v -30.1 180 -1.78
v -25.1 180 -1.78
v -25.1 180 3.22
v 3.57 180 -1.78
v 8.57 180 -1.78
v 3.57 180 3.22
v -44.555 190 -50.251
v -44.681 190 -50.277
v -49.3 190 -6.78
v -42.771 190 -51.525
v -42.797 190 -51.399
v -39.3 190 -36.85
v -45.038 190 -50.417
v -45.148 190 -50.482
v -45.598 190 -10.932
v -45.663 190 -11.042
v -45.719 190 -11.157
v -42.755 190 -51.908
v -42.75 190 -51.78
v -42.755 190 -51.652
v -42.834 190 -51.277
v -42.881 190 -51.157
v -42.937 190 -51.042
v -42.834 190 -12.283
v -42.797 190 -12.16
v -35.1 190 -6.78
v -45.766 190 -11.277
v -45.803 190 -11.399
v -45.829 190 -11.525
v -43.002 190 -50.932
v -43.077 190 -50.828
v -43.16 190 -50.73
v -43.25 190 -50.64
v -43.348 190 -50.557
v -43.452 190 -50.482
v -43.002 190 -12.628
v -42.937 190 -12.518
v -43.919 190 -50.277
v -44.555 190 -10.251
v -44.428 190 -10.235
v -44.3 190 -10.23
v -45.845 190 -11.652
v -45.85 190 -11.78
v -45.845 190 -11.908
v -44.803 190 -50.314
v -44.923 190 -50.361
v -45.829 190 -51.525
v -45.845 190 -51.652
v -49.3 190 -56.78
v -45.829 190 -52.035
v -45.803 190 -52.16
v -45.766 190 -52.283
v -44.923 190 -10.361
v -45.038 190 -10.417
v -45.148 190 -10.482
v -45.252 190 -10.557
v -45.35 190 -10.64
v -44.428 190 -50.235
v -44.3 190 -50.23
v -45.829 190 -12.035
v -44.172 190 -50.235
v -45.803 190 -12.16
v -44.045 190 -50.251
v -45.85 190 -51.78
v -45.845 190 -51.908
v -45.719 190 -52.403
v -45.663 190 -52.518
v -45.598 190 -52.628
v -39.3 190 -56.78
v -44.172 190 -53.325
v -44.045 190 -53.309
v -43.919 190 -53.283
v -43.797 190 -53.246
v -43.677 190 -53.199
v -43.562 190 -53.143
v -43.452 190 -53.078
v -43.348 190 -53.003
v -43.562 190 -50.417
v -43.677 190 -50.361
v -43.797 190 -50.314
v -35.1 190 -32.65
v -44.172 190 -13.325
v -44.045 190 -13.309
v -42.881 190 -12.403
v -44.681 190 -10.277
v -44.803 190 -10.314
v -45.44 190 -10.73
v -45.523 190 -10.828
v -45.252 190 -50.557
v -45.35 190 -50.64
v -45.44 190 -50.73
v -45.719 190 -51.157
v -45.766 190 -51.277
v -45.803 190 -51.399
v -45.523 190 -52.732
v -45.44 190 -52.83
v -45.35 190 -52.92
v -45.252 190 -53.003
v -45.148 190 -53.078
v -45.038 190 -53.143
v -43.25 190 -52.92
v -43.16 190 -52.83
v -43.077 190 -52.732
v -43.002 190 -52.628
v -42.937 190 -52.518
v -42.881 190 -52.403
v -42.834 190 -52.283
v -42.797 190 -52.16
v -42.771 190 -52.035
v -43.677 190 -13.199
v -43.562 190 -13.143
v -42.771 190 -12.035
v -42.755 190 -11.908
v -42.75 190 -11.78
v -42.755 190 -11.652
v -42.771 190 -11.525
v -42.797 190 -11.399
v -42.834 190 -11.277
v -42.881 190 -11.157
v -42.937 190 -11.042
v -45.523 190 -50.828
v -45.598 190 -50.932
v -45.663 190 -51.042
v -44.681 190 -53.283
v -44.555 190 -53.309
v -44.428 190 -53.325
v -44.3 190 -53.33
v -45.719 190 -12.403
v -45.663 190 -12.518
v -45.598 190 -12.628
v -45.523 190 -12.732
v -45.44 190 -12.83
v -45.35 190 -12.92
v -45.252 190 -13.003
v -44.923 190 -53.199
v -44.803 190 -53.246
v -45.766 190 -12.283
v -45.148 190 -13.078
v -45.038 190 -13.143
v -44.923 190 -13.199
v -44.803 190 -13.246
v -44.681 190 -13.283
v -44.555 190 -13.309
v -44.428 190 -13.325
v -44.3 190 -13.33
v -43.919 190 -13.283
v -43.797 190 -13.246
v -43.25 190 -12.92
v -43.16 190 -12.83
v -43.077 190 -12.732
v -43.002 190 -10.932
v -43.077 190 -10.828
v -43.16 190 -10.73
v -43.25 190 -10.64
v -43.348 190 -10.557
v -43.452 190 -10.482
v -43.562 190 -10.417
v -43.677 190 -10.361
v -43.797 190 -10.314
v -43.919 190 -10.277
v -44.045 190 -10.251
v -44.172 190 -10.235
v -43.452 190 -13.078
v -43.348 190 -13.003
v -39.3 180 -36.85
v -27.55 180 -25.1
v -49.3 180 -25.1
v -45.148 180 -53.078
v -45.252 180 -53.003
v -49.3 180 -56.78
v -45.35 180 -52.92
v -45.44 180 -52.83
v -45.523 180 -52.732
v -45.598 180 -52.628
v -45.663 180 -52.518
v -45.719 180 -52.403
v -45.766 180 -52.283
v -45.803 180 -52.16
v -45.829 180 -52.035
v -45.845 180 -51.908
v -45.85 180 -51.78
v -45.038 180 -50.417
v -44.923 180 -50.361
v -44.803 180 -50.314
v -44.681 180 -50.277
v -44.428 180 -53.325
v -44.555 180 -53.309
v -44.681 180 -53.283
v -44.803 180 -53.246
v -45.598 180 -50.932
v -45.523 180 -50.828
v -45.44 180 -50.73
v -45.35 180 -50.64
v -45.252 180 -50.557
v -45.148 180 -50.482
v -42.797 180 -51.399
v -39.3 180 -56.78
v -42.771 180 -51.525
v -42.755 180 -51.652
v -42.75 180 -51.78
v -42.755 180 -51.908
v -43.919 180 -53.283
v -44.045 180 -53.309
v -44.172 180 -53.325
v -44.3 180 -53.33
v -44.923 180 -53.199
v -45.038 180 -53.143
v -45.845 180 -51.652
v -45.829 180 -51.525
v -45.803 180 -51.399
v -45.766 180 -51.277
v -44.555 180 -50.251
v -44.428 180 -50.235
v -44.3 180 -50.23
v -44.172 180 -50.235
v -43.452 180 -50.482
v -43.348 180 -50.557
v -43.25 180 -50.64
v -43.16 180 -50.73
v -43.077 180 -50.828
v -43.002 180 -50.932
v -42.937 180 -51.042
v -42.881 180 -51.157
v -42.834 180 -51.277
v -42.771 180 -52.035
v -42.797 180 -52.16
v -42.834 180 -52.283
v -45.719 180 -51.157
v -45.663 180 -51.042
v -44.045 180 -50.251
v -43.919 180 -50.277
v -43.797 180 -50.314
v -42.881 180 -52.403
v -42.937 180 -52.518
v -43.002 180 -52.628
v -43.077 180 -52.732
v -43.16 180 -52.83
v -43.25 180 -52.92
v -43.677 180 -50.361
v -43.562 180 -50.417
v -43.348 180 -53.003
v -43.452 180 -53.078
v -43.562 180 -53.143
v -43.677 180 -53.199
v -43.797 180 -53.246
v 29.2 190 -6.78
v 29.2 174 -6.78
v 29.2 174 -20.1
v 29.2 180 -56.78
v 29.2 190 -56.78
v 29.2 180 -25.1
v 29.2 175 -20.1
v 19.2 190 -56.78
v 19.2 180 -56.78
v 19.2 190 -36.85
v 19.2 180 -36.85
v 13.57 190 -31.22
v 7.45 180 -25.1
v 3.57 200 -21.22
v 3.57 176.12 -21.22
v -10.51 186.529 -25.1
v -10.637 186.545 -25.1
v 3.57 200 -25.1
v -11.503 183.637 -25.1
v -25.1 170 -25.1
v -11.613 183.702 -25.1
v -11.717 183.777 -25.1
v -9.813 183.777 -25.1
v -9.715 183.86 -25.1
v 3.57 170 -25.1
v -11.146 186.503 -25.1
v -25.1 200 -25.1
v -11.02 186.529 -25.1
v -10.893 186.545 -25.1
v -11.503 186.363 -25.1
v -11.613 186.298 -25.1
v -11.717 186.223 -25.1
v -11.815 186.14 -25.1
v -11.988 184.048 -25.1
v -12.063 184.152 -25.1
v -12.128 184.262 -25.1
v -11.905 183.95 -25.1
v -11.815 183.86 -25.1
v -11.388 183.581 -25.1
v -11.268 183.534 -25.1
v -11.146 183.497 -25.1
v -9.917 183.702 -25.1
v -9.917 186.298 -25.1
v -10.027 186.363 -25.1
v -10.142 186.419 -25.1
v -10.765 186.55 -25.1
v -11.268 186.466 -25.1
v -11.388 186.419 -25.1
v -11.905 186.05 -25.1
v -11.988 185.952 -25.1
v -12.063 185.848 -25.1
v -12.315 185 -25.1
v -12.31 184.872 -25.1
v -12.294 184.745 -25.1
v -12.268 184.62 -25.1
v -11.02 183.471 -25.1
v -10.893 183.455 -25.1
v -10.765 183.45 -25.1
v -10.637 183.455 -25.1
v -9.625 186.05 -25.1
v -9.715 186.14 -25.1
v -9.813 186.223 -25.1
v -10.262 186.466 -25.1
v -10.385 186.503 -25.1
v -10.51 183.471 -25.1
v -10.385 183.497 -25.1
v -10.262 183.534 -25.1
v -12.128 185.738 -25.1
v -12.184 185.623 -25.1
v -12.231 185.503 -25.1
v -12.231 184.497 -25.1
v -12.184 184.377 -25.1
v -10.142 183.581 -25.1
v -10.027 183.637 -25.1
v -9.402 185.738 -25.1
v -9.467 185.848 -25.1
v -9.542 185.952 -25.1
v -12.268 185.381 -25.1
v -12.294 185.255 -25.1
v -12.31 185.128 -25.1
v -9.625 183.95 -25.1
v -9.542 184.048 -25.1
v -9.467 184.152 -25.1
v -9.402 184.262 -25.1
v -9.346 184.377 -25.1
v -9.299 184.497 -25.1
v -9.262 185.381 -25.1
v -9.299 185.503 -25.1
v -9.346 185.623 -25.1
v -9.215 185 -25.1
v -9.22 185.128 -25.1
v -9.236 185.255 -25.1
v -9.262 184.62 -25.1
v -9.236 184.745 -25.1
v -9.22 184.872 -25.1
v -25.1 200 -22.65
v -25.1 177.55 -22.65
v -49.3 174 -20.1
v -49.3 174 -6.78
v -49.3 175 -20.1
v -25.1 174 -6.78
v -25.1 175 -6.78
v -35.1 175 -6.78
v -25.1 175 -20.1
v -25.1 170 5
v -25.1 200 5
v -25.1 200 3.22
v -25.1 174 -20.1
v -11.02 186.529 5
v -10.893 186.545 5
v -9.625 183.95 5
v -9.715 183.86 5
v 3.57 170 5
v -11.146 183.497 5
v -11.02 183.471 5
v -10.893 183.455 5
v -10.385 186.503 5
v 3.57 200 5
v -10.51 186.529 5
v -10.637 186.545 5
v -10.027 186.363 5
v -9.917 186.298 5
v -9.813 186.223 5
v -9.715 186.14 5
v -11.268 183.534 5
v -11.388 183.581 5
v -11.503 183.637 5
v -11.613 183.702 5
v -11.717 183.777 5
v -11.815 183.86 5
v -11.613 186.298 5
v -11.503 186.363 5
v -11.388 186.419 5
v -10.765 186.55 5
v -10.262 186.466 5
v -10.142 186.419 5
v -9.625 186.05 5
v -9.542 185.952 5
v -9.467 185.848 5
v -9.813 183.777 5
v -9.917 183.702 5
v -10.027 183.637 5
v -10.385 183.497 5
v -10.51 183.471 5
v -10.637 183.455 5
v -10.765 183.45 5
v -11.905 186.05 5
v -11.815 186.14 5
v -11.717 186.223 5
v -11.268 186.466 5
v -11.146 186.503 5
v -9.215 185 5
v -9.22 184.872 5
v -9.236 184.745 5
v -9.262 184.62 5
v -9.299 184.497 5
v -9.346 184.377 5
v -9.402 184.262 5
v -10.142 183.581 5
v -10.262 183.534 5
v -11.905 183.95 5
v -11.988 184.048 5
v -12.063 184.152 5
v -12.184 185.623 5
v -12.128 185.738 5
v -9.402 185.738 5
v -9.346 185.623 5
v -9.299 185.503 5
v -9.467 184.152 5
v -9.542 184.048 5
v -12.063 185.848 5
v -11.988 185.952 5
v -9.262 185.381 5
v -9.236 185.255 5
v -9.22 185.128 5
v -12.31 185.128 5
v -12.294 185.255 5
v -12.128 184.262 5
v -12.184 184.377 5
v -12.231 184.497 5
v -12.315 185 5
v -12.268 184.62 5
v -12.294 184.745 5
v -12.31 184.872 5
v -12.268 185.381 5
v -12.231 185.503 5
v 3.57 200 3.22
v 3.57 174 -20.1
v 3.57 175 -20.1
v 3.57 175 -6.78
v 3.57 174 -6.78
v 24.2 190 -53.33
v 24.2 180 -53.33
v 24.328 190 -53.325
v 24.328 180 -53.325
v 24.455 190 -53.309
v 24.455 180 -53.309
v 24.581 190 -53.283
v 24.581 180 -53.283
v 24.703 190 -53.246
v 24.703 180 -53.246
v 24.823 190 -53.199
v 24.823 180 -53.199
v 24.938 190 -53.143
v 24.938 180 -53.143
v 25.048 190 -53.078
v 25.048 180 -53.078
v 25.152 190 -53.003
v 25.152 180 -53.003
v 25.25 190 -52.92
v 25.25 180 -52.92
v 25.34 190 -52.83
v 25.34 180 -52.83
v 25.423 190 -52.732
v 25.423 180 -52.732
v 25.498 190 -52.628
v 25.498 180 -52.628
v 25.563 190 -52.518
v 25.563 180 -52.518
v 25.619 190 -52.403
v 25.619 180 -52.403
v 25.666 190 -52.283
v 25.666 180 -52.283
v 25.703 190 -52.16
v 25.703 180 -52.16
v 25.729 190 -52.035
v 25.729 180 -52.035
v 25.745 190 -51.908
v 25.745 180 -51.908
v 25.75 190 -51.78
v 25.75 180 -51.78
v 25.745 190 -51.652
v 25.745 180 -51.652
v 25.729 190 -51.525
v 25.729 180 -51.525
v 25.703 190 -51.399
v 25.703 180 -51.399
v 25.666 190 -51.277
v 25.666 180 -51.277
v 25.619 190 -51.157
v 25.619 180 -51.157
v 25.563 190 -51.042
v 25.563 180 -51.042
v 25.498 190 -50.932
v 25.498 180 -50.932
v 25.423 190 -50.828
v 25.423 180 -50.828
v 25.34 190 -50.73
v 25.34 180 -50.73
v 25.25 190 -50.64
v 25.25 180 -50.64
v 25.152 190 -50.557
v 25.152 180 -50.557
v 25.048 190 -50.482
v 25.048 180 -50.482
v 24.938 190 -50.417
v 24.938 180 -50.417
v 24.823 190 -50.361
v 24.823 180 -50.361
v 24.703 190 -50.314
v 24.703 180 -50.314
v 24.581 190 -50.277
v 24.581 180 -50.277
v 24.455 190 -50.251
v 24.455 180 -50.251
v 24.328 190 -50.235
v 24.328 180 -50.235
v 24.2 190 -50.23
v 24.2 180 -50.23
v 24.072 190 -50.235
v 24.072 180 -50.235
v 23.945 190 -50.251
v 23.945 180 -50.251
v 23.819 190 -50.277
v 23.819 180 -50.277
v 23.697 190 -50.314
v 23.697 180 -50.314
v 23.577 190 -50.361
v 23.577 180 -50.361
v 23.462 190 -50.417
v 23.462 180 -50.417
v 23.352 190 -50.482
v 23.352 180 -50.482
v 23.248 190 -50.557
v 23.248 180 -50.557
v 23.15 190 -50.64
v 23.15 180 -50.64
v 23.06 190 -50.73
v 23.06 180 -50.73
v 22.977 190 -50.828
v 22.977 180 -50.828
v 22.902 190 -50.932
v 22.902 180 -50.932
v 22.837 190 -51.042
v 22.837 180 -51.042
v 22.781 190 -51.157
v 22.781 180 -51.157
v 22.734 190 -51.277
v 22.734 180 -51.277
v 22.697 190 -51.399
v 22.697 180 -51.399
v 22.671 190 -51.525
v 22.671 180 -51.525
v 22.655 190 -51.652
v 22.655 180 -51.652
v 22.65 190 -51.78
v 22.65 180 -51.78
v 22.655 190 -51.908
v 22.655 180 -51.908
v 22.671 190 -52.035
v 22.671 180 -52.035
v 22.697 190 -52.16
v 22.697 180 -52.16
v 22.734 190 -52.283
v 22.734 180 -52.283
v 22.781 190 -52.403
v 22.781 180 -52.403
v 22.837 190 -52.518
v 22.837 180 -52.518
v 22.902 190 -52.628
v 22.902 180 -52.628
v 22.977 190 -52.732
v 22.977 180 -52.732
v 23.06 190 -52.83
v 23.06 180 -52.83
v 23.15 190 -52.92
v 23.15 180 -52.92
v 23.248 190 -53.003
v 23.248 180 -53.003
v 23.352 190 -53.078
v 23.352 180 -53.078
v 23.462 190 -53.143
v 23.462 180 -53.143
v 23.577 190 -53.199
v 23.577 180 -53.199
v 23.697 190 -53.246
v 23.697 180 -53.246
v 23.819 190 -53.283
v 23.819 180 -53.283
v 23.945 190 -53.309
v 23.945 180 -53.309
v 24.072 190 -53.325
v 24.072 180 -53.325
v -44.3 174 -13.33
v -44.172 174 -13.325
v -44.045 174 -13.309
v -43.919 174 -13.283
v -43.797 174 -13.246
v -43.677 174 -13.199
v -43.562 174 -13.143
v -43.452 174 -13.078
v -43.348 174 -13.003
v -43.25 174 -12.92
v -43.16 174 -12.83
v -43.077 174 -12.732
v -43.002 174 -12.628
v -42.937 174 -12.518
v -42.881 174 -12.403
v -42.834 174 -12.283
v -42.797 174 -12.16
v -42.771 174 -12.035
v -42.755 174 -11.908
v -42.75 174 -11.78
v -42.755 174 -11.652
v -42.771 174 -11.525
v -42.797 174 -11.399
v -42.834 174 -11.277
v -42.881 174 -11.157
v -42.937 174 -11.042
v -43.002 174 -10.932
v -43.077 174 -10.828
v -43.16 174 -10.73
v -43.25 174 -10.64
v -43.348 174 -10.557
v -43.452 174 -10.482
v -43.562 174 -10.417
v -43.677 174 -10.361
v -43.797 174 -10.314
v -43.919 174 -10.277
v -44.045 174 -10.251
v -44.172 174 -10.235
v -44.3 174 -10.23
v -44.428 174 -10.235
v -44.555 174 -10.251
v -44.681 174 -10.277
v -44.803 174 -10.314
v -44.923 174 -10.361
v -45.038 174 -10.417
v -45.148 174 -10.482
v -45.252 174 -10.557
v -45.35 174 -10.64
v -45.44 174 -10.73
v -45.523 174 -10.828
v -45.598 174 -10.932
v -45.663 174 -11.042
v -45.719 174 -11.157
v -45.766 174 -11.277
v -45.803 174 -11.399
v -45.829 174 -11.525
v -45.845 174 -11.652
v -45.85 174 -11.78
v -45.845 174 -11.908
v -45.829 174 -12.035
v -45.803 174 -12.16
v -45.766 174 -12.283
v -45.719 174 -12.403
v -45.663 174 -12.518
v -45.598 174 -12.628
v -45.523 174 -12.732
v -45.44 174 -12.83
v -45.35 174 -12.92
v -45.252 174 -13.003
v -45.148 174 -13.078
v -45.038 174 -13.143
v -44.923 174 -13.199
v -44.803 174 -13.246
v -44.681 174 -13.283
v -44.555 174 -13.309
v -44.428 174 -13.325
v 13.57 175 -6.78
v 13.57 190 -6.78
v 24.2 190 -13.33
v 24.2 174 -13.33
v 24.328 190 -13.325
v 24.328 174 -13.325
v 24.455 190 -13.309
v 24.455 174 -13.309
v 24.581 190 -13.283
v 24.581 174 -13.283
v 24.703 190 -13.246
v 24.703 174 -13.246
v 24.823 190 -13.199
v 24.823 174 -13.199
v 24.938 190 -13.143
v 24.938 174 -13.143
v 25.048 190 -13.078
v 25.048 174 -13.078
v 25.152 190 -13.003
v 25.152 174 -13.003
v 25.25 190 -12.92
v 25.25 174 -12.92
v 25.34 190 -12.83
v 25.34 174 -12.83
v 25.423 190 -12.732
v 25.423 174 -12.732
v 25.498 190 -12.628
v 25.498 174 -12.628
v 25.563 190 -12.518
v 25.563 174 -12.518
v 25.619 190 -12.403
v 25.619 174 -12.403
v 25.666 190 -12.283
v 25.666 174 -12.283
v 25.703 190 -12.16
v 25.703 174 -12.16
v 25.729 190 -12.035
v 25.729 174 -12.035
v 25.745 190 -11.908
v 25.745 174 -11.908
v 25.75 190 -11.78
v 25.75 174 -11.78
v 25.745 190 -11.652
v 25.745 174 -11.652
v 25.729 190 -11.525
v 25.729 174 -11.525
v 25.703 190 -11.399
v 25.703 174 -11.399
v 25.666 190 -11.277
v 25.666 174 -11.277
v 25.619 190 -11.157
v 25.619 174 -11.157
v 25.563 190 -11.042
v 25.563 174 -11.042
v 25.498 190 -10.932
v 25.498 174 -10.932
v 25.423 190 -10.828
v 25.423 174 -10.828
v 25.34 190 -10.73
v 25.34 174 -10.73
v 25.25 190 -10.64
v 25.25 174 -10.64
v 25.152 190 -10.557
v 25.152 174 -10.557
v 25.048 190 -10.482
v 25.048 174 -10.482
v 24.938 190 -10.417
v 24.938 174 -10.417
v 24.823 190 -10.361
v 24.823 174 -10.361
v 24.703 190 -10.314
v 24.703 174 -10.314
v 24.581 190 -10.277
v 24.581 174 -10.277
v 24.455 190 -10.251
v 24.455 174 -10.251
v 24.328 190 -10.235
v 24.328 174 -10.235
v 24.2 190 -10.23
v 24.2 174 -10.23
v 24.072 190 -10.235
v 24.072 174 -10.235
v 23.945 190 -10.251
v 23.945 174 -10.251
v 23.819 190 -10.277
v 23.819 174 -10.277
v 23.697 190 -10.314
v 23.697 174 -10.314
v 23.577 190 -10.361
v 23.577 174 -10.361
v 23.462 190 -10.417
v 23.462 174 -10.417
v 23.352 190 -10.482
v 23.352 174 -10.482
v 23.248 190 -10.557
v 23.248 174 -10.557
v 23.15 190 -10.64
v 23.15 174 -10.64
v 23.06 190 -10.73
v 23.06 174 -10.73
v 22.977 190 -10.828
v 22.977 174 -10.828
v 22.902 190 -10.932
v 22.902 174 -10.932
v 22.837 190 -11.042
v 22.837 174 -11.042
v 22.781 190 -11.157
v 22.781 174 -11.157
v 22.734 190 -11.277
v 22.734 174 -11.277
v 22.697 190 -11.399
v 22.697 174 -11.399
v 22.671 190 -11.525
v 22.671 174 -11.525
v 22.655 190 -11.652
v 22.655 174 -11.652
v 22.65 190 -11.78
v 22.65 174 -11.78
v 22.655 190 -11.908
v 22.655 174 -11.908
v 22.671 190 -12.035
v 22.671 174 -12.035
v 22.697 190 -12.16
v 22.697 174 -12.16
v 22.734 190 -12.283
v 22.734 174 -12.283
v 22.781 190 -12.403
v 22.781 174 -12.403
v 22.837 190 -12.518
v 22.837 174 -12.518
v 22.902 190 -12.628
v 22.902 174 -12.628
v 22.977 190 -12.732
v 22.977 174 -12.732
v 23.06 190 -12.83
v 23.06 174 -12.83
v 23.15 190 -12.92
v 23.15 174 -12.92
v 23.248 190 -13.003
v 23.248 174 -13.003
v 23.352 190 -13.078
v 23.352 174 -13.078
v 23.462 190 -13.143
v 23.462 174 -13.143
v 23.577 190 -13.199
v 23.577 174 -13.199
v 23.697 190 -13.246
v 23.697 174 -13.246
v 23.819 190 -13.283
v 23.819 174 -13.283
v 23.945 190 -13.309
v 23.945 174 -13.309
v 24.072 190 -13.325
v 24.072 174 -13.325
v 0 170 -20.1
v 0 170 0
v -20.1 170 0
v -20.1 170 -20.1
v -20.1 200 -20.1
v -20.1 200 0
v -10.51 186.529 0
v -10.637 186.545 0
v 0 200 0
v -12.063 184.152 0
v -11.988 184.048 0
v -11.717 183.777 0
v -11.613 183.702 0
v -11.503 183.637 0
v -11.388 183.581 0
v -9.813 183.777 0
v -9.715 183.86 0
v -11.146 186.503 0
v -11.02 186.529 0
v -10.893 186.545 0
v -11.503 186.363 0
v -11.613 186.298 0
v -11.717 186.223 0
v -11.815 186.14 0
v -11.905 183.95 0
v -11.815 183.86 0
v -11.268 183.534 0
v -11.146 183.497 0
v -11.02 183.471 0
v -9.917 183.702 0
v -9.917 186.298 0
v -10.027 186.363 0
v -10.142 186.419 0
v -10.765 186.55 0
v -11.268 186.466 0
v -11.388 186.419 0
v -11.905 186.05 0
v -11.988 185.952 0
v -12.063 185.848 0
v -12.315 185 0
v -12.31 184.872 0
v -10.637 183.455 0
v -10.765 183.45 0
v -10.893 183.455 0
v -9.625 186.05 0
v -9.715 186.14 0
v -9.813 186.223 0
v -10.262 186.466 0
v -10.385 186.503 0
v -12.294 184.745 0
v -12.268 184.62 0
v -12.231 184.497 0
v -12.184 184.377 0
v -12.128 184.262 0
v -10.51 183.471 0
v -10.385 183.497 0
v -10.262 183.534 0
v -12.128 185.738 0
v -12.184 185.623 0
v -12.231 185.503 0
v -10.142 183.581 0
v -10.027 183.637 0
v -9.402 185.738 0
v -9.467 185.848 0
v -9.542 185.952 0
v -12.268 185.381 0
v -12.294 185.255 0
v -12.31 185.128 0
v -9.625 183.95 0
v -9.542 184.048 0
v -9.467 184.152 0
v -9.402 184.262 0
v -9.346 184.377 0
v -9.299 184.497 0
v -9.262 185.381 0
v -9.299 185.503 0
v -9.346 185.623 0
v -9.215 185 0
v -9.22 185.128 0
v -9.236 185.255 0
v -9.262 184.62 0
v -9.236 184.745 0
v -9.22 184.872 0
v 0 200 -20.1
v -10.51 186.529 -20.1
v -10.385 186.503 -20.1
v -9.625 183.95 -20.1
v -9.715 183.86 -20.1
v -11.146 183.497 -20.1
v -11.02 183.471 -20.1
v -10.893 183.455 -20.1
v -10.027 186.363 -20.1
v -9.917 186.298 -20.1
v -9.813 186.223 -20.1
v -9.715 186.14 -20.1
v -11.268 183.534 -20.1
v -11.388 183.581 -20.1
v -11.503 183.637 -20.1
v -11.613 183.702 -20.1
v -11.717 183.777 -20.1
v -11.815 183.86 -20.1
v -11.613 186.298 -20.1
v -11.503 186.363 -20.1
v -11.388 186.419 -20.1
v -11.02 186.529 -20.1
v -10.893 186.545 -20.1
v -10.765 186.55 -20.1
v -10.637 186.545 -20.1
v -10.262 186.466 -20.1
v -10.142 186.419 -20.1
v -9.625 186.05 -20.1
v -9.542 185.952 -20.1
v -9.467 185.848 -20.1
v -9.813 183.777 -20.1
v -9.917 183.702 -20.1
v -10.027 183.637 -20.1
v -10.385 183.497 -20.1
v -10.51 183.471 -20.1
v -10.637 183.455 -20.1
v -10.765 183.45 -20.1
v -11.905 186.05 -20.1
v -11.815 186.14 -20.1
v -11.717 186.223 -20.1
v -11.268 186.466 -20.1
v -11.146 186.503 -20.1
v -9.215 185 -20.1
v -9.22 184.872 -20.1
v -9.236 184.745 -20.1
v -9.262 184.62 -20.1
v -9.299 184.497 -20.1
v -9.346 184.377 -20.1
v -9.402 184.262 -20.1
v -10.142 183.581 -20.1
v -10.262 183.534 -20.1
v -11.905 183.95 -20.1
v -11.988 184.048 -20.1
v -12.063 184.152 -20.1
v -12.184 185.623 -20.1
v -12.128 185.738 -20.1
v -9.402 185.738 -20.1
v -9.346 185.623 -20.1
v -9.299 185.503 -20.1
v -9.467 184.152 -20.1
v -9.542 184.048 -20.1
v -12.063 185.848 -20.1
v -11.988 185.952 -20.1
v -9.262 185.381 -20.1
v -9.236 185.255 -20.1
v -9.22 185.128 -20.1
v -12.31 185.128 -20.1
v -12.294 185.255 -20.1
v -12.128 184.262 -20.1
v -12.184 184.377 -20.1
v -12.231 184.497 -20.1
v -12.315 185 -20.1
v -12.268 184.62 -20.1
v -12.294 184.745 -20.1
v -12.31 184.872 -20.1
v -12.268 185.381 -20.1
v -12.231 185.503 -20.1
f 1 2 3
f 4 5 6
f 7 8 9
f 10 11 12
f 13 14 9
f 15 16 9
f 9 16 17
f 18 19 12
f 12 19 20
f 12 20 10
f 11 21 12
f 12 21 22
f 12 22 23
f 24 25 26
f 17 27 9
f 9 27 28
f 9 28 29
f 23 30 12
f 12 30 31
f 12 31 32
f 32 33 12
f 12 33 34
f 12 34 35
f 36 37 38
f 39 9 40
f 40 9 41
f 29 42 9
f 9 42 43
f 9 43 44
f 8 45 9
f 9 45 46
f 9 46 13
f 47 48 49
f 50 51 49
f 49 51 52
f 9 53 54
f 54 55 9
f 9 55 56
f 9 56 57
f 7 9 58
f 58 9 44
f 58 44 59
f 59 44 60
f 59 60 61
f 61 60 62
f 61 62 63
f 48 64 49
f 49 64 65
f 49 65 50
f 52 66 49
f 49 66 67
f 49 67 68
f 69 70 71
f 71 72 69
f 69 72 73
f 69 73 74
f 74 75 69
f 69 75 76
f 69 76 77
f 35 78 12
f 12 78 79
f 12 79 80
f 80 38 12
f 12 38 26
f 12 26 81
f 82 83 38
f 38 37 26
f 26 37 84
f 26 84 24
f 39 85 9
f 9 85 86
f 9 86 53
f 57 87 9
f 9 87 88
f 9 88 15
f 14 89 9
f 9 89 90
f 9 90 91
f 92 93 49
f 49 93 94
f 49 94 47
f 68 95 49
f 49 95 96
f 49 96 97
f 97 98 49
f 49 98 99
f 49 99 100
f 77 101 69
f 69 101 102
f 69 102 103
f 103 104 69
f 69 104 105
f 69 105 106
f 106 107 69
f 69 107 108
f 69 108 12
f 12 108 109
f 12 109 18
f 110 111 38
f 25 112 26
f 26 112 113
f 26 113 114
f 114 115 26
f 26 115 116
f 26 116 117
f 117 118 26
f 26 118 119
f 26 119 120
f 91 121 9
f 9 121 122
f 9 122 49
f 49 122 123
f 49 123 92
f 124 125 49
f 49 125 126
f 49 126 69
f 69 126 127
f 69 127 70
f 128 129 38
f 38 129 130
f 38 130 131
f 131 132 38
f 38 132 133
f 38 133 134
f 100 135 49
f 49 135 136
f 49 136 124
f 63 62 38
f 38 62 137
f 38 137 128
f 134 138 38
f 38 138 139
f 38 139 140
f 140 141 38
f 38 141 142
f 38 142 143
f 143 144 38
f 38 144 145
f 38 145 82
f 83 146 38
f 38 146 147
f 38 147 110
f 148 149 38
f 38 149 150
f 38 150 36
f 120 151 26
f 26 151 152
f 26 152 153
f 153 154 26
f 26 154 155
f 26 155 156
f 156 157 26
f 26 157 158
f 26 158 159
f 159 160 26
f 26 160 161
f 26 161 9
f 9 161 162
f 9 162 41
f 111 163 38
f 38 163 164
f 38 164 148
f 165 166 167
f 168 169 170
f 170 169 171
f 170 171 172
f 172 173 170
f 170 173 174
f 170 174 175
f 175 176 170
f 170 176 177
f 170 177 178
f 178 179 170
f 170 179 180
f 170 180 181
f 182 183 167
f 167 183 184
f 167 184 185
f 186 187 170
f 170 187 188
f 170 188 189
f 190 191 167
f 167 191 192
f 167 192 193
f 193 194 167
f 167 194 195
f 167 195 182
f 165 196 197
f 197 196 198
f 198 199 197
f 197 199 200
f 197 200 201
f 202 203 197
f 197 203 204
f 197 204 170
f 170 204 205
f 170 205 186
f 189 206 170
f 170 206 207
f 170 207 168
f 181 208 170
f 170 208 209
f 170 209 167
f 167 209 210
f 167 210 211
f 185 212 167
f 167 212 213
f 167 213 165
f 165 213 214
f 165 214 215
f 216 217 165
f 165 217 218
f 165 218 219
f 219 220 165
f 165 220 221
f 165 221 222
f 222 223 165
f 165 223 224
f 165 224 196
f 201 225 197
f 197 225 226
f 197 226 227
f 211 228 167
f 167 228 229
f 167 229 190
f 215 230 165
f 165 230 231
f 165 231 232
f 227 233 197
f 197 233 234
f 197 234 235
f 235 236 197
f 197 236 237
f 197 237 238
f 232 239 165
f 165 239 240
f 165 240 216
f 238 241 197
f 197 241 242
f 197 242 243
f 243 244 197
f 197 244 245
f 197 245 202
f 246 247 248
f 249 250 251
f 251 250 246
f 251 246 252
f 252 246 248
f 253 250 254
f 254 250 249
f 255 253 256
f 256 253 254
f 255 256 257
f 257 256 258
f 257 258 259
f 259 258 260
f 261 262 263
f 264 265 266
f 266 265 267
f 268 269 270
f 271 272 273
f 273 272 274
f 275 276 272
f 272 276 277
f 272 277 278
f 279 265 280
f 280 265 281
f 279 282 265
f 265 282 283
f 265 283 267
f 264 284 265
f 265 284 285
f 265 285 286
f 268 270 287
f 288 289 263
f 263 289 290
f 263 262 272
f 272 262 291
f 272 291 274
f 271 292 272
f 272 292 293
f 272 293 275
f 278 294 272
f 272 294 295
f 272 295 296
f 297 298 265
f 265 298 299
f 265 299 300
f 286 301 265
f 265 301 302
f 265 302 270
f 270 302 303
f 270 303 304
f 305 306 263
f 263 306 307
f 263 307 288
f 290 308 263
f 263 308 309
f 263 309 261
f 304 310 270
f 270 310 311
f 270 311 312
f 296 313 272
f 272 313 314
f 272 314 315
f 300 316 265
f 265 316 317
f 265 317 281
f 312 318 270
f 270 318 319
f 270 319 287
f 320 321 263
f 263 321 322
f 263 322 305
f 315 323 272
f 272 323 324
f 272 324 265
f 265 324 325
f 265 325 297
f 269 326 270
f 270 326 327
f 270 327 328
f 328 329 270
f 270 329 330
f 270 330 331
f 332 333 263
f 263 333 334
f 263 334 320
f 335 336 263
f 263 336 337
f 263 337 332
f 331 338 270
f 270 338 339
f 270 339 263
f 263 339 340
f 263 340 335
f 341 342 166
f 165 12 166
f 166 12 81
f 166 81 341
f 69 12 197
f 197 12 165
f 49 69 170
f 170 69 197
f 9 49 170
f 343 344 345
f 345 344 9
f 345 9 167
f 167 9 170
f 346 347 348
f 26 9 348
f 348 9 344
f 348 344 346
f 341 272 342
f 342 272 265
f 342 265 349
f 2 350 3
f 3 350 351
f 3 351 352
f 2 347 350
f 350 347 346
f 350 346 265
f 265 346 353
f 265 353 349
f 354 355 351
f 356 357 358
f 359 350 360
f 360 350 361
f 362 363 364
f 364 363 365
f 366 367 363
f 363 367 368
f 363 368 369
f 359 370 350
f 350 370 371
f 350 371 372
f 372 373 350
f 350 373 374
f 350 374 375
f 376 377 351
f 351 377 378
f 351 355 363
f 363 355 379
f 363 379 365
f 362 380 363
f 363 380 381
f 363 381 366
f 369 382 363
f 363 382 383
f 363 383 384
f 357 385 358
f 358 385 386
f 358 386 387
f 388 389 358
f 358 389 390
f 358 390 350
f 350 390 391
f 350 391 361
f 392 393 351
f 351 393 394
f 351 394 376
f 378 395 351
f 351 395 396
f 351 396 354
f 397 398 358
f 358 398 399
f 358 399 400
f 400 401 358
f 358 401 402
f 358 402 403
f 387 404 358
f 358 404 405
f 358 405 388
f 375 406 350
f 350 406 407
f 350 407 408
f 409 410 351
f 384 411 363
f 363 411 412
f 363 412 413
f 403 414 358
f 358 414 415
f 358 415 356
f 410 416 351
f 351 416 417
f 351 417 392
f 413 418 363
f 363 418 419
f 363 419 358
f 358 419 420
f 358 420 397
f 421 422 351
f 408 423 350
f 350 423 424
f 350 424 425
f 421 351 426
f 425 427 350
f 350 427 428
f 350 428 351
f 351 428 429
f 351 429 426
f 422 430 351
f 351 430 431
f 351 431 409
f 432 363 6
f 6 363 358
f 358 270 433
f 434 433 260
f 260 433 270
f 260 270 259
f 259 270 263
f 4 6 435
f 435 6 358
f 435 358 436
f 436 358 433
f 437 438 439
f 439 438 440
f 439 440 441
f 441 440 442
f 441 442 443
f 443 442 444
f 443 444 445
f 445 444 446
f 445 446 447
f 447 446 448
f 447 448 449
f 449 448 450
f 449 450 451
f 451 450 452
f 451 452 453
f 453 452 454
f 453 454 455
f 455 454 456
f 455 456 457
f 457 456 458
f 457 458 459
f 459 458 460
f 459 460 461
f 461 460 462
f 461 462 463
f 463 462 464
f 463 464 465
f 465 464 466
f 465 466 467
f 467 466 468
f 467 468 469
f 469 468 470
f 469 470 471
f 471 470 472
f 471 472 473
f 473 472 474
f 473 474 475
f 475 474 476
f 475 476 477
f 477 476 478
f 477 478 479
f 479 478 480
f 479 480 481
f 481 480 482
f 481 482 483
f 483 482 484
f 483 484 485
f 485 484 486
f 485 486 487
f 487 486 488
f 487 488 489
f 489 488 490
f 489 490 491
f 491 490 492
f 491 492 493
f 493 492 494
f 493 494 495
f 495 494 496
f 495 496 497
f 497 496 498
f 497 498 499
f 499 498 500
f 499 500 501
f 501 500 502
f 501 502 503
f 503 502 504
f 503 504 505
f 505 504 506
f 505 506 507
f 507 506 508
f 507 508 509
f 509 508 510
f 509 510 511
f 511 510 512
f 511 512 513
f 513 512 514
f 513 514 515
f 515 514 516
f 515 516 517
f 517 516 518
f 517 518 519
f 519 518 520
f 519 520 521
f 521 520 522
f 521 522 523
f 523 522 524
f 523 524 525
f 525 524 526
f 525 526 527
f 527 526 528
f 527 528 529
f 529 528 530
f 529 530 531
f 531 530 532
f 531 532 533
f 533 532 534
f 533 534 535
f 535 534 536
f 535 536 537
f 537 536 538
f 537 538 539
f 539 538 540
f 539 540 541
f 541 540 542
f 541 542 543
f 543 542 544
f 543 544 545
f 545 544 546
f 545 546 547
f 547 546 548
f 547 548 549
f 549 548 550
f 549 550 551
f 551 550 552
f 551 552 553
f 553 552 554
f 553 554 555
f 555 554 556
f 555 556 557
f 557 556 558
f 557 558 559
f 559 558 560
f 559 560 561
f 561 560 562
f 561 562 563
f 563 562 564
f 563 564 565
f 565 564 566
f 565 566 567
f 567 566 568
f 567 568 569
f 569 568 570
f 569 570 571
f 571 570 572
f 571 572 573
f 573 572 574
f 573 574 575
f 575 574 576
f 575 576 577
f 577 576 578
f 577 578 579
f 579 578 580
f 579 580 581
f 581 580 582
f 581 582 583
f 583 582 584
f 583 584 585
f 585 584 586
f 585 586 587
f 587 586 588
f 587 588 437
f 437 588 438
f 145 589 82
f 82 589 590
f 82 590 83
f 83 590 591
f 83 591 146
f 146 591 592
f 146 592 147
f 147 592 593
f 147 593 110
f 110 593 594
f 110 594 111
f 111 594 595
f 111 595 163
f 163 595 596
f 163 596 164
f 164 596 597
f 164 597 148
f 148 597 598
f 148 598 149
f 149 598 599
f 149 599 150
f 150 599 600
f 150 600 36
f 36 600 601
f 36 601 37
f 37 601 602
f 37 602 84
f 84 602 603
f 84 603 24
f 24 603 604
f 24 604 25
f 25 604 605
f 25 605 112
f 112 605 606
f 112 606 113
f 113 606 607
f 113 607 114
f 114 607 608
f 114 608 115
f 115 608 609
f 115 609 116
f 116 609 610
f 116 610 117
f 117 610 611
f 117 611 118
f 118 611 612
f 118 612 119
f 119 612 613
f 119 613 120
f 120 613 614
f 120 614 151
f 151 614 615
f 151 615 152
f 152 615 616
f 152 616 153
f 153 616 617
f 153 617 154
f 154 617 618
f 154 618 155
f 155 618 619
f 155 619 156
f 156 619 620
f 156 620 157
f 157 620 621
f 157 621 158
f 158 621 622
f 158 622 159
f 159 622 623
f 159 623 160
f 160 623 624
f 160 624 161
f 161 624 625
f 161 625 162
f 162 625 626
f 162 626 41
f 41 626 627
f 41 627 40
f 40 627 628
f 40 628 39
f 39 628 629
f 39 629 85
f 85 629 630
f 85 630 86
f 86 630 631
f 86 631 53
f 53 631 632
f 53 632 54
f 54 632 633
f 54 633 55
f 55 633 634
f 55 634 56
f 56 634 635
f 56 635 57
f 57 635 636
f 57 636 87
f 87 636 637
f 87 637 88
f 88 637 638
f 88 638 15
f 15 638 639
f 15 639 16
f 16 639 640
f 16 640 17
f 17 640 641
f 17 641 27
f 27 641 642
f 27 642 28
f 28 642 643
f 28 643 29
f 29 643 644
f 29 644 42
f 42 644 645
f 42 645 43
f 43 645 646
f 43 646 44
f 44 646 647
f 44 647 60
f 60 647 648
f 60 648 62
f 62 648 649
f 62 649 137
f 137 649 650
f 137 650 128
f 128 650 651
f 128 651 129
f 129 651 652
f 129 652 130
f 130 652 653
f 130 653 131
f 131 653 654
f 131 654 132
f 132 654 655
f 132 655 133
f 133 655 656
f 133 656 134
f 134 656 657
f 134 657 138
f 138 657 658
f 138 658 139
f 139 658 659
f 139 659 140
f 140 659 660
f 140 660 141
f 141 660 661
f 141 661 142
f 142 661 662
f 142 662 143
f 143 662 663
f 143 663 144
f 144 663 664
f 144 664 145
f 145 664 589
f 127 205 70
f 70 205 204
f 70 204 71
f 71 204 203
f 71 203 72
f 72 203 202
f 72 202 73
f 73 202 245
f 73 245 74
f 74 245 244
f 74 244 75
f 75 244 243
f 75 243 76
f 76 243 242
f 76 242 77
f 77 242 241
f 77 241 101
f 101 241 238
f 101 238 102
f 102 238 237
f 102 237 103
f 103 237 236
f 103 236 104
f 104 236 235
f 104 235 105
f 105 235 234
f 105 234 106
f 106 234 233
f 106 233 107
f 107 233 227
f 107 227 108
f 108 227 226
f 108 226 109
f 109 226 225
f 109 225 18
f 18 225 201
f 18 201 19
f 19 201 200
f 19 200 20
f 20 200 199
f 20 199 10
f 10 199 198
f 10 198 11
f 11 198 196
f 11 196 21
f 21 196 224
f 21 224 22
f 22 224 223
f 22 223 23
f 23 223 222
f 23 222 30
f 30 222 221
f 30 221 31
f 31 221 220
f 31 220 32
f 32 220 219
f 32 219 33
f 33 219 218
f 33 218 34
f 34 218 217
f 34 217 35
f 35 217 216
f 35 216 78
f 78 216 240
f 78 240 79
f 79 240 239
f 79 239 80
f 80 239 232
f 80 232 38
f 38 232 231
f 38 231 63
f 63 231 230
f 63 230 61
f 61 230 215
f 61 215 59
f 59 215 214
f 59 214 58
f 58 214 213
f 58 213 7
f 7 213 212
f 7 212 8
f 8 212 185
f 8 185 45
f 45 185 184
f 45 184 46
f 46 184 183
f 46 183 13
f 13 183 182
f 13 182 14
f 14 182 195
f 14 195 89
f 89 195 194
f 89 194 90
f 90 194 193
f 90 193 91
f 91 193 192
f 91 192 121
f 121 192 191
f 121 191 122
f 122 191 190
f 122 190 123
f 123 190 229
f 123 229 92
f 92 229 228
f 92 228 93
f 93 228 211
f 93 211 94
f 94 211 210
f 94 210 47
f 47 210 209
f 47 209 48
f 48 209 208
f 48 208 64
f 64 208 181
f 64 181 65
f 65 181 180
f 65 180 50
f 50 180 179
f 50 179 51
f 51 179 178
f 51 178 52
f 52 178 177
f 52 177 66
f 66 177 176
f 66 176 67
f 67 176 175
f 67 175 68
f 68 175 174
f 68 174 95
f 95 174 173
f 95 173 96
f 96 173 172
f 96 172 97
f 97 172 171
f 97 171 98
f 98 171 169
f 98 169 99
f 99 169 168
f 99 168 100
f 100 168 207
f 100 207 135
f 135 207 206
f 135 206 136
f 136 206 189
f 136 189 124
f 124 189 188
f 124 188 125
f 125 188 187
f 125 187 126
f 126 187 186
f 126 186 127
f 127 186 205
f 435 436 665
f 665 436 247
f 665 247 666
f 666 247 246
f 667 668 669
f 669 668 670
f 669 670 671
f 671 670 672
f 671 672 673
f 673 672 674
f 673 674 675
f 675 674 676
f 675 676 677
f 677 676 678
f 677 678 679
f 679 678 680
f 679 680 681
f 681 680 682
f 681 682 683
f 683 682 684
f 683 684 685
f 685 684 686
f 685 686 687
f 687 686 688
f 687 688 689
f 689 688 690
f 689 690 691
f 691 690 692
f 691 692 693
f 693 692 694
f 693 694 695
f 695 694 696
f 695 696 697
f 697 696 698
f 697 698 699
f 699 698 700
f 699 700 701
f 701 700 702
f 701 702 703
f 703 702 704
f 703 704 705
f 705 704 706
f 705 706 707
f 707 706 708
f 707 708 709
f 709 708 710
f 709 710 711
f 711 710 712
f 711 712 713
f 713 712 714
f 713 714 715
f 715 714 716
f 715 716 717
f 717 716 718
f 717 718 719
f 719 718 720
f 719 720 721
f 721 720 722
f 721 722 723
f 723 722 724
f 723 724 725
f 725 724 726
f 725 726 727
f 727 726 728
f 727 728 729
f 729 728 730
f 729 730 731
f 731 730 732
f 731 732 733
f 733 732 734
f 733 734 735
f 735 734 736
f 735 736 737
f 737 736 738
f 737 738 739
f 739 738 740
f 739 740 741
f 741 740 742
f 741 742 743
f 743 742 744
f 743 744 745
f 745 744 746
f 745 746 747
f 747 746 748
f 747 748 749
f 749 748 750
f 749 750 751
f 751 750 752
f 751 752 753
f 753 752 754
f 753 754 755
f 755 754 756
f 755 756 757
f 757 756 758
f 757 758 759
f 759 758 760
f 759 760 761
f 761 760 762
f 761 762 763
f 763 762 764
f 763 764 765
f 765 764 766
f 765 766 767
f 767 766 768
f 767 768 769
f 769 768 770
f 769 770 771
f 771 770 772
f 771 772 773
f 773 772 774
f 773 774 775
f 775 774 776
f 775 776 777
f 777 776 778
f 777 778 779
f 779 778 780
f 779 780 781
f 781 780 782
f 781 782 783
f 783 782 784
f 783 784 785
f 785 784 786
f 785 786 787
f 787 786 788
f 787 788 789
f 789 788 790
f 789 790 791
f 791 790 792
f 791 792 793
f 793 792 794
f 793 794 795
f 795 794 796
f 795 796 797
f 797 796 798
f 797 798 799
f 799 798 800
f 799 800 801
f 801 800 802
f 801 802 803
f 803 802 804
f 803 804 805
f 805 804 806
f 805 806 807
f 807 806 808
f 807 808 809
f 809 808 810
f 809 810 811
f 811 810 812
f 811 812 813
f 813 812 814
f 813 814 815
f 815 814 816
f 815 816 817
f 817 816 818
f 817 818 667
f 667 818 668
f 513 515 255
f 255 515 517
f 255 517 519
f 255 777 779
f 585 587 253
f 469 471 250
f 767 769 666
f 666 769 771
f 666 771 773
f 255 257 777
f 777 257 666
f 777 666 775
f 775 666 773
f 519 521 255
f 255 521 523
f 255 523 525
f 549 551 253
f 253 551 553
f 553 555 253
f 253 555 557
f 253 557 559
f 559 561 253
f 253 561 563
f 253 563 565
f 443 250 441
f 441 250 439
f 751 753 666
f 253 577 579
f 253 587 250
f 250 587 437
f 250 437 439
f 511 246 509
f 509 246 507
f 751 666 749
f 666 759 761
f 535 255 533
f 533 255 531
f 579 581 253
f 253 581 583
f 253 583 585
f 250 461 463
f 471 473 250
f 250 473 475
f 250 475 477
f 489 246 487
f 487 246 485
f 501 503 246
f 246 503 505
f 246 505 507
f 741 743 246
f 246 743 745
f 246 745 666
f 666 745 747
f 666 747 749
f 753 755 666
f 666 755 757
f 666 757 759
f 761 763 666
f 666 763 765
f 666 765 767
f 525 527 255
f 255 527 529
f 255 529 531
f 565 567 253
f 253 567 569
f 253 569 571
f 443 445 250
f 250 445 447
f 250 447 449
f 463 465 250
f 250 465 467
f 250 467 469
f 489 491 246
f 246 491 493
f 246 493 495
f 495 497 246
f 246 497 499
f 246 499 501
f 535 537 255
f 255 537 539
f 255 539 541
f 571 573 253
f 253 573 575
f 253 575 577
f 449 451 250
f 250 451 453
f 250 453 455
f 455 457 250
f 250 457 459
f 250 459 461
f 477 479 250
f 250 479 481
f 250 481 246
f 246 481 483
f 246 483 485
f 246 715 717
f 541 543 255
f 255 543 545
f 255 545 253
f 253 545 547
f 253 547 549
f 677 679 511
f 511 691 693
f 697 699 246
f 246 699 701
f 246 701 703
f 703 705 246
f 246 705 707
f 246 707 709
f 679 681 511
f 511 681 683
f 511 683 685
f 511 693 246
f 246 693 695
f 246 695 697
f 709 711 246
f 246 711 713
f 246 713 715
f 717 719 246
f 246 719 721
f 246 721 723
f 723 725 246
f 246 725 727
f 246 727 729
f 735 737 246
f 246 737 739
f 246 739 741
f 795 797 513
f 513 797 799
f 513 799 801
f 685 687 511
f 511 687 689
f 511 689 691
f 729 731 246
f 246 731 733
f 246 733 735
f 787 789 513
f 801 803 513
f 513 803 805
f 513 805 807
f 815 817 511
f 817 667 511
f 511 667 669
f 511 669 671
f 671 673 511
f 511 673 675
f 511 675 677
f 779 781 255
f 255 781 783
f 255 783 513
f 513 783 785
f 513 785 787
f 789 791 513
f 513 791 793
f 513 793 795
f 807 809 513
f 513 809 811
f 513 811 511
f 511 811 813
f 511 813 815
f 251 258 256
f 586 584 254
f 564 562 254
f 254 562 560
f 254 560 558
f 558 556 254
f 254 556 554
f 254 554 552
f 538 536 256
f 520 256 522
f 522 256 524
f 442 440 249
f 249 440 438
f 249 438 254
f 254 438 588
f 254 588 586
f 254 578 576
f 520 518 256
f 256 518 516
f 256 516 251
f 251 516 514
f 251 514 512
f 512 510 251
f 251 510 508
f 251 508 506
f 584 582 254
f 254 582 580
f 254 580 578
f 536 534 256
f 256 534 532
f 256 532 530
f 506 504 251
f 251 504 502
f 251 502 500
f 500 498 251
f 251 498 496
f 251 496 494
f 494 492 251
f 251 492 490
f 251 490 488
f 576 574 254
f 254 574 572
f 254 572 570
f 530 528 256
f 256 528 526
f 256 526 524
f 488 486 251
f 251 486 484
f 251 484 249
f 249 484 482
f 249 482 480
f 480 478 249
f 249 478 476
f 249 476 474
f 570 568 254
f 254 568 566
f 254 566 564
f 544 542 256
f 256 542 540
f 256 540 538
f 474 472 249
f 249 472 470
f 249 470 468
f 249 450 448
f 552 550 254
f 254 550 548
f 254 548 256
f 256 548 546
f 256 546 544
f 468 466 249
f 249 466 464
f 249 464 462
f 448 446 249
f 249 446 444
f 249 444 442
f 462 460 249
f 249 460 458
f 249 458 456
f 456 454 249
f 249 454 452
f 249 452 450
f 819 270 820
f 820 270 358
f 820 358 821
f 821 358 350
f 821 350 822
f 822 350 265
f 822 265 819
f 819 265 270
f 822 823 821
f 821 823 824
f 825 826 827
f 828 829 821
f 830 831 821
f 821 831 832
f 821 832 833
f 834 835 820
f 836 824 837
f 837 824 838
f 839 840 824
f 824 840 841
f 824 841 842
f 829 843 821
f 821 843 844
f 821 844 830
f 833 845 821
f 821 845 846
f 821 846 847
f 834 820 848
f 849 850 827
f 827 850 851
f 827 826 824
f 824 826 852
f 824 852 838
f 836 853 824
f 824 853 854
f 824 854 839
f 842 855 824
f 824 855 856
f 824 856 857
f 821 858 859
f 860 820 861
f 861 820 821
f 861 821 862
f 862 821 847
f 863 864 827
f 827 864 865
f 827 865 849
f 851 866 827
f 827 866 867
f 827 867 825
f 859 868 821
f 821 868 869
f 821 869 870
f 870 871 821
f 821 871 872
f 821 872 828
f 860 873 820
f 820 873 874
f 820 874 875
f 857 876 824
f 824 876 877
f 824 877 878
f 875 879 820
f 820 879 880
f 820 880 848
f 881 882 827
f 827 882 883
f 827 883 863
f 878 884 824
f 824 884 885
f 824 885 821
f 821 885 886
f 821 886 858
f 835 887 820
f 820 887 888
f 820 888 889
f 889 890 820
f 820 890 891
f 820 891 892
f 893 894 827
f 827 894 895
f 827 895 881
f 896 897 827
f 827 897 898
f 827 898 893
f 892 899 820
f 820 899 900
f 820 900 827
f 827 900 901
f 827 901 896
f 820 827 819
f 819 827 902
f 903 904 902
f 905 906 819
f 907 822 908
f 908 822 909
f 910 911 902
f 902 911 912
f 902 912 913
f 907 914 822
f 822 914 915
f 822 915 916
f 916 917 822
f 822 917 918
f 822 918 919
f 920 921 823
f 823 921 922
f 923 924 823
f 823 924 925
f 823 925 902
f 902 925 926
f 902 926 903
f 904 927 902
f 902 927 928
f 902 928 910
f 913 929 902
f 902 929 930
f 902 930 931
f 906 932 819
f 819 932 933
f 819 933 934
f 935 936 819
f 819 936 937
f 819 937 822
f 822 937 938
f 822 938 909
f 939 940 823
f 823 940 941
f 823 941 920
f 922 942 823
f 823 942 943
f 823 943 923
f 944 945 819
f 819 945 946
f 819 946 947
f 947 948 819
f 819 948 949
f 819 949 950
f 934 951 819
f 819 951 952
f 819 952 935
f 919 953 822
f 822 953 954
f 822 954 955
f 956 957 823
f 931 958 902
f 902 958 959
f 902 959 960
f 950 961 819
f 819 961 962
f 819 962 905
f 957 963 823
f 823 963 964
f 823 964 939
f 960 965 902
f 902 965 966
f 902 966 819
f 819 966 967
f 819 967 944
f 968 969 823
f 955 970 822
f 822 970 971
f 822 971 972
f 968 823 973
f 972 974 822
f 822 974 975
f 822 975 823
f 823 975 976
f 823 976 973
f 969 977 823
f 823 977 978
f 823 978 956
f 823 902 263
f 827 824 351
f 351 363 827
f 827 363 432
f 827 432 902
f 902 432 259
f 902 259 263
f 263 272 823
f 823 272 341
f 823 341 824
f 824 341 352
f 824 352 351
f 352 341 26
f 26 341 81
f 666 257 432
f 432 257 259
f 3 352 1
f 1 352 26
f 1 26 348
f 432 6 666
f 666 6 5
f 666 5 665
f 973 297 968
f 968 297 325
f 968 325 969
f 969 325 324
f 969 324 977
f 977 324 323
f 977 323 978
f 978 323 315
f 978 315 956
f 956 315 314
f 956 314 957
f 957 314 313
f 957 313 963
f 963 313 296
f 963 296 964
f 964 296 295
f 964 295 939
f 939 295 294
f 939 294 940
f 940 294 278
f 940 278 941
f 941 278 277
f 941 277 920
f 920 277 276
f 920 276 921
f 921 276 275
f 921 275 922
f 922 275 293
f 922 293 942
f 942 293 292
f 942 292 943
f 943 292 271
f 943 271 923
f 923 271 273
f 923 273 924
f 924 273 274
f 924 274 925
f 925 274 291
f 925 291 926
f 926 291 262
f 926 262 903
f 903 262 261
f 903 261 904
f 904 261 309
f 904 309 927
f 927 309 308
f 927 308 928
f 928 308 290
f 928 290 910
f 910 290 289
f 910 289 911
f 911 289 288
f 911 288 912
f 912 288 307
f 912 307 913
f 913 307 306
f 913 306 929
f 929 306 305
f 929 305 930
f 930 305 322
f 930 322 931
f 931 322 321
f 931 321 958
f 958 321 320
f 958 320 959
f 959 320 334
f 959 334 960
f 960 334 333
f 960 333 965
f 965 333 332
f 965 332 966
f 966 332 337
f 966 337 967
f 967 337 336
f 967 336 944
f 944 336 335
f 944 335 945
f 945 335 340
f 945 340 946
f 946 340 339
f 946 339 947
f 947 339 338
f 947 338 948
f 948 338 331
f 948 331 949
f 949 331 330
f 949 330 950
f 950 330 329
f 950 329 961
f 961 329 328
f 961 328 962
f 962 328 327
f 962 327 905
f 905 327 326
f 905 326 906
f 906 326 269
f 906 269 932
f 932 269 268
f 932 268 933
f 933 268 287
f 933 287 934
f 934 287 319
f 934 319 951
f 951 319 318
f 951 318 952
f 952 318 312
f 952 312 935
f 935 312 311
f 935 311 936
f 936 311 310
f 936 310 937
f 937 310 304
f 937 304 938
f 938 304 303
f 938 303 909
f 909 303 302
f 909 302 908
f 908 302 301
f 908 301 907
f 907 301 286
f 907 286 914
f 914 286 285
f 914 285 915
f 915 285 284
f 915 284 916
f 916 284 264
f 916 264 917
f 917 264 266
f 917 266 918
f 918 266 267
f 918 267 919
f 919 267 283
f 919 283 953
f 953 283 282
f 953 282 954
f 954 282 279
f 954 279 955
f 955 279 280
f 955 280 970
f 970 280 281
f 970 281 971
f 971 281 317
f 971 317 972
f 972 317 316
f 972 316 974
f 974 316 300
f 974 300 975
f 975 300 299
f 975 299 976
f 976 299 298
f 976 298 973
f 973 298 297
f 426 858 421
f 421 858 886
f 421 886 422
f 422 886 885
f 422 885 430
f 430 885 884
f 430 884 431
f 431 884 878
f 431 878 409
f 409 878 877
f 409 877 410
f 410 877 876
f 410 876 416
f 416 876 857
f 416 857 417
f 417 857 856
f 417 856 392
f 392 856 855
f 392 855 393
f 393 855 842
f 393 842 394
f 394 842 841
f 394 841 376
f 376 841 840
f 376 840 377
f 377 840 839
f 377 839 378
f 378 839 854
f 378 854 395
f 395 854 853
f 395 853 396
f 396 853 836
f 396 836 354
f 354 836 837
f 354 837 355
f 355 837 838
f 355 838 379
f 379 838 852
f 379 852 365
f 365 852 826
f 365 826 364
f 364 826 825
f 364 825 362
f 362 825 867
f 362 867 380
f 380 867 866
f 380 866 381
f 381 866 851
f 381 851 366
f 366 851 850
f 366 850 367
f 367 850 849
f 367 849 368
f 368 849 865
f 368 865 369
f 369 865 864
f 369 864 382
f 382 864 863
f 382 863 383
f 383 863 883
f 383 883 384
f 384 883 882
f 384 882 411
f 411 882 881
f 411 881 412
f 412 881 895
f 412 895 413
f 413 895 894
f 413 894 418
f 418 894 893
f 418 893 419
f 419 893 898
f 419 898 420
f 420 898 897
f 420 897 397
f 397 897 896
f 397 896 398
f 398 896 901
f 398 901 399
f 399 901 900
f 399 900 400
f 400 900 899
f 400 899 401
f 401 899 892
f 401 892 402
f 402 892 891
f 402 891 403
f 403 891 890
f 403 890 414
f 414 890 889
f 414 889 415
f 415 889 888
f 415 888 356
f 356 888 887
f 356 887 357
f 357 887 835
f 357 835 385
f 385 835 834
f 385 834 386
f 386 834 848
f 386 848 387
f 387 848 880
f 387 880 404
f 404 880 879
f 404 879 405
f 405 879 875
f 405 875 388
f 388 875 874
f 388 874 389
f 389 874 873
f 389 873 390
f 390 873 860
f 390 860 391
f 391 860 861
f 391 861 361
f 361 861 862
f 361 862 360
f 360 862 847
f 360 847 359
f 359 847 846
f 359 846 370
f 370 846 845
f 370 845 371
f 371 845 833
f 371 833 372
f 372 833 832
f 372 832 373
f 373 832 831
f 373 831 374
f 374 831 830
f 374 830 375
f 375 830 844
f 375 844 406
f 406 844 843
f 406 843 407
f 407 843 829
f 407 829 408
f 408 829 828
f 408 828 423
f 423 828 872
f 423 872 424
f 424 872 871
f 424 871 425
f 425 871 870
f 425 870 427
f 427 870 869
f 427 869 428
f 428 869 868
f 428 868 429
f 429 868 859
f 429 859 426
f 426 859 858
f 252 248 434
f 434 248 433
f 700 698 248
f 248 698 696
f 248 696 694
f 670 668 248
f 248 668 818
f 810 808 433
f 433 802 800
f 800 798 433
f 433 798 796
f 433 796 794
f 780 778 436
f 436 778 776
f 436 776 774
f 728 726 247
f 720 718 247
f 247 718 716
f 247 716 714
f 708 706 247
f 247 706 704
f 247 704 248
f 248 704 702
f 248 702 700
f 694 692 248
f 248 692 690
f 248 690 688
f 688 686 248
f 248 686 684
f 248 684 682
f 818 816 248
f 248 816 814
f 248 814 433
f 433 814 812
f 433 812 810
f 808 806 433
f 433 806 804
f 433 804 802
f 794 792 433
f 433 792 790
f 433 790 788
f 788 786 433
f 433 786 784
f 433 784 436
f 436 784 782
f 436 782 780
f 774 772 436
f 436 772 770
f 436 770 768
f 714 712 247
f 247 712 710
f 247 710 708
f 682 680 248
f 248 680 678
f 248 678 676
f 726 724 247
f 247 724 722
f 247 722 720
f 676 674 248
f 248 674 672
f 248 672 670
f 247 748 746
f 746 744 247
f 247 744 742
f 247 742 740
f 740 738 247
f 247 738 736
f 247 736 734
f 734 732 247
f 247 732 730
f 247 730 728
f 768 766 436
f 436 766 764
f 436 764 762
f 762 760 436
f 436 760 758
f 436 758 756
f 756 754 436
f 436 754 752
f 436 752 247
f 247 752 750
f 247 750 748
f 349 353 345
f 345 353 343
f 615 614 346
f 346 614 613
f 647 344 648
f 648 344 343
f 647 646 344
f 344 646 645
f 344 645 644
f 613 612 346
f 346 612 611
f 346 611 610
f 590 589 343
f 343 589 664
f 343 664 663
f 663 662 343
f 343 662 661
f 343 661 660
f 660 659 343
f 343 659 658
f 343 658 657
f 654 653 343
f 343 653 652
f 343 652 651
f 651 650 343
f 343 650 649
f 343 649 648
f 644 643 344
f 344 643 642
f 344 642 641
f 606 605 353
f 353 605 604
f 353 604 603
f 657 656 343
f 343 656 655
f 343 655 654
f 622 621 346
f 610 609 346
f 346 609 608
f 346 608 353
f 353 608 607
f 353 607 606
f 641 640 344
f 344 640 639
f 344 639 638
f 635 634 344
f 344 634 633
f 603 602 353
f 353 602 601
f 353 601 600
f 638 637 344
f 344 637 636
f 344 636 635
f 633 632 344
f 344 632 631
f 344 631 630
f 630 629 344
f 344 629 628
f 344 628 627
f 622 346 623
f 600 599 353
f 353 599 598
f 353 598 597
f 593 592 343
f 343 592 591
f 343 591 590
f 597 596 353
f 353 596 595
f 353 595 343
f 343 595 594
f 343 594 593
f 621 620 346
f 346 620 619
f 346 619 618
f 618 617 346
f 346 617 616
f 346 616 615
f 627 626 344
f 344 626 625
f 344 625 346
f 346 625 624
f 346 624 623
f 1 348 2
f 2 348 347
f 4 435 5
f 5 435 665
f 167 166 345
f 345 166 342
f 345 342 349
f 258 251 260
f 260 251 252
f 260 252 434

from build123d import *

# Parameters (mm, degrees)
BOSS_EXTRUDE3_START = 180
SKETCH2_R           = 1.55
SKETCH2_W           = 25.630091621
SKETCH2_H           = 13.32
BOSS_EXTRUDE3_DEPTH = 10
BOSS_EXTRUDE4_START = 170
BOSS_EXTRUDE4_DEPTH = 30
CHAMFER1_SIZE       = 10
CHAMFER2_SIZE       = 10
SKETCH3_R           = 1.55
CUT_EXTRUDE1_DEPTH  = 43
BOSS_EXTRUDE5_START = 174
SKETCH2_5_W         = 25.630091621
SKETCH2_5_H         = 13.32
SKETCH2_5_R         = 1.55
BOSS_EXTRUDE5_DEPTH = 6.1
CHAMFER3_SIZE       = 5


with BuildPart() as part:
    # Sketch2 → Boss-Extrude3 (new body)
    # profile 1 of 8: a face of its own
    with BuildSketch(Plane(origin=(0, 0, 0), x_dir=(1, 0, 0), z_dir=(0, 1, 0)).offset(BOSS_EXTRUDE3_START)):
        Polygon((-39.3, 56.78), (-49.3, 56.78), (-49.3, 20.1), (-25.1, 20.1), (-25.1, 22.65), (-39.3, 36.85), align=None)
        with Locations(Location((-44.3, 51.78, 0), (0, 0, 270))):
            Circle(SKETCH2_R, mode=Mode.SUBTRACT)
    # profile 2 of 8: a face of its own
    with BuildSketch(Plane(origin=(0, 0, 0), x_dir=(1, 0, 0), z_dir=(0, 1, 0)).offset(BOSS_EXTRUDE3_START)):
        Polygon((-25.1, 20.1), (-49.3, 20.1), (-49.3, 6.78), (-40, 6.78), (-25.1, 6.78), align=None)
        with Locations(Location((-44.3, 11.78, 0), (0, 0, 270))):
            Circle(SKETCH2_R, mode=Mode.SUBTRACT)
    # profile 3 of 8: a face of its own
    with BuildSketch(Plane(origin=(0, 0, 0), x_dir=(1, 0, 0), z_dir=(0, 1, 0)).offset(BOSS_EXTRUDE3_START)):
        Polygon((-20.1, 6.78), (-25.1, 6.78), (-25.1, -5), (3.569908379, -5), (3.569908379, 6.78), (0, 6.78), (0, 0), (-20.1, 0), align=None)
    # profile 4 of 8: a face of its own
    with BuildSketch(Plane(origin=(0, 0, 0), x_dir=(1, 0, 0), z_dir=(0, 1, 0)).offset(BOSS_EXTRUDE3_START)):
        Polygon((-25.1, 22.65), (-25.1, 20.1), (-25.1, 6.78), (-20.1, 6.78), (-20.1, 20.1), (-22.55, 20.1), align=None)
    # profile 5 of 8: a face of its own
    with BuildSketch(Plane(origin=(0, 0, 0), x_dir=(1, 0, 0), z_dir=(0, 1, 0)).offset(BOSS_EXTRUDE3_START)):
        Polygon((-25.1, 25.1), (-25.1, 22.65), (-22.55, 20.1), (-20.1, 20.1), (0, 20.1), (2.45, 20.1), (3.569908379, 21.219908379), (3.569908379, 25.1), align=None)
    # profile 6 of 8: a face of its own
    with BuildSketch(Plane(origin=(0, 0, 0), x_dir=(1, 0, 0), z_dir=(0, 1, 0)).offset(BOSS_EXTRUDE3_START)):
        Polygon((0, 20.1), (0, 6.78), (3.569908379, 6.78), (3.569908379, 20.1), (3.569908379, 21.219908379), (2.45, 20.1), align=None)
    # profile 7 of 8: a face of its own
    with BuildSketch(Plane(origin=(0, 0, 0), x_dir=(1, 0, 0), z_dir=(0, 1, 0)).offset(BOSS_EXTRUDE3_START)):
        with Locations((16.38495419, 13.44)):
            Rectangle(SKETCH2_W, SKETCH2_H)
        with Locations(Location((24.2, 11.78, 0), (0, 0, 270))):
            Circle(SKETCH2_R, mode=Mode.SUBTRACT)
    # profile 8 of 8: a face of its own
    with BuildSketch(Plane(origin=(0, 0, 0), x_dir=(1, 0, 0), z_dir=(0, 1, 0)).offset(BOSS_EXTRUDE3_START)):
        Polygon((19.2, 36.85), (3.569908379, 21.219908379), (3.569908379, 20.1), (29.2, 20.1), (29.2, 56.78), (19.2, 56.78), align=None)
        with Locations(Location((24.2, 51.78, 0), (0, 0, 270))):
            Circle(SKETCH2_R, mode=Mode.SUBTRACT)
    extrude(amount=BOSS_EXTRUDE3_DEPTH)

    # Sketch2<3> → Boss-Extrude4 (add)
    with BuildSketch(Plane(origin=(0, 0, 0), x_dir=(1, 0, 0), z_dir=(0, 1, 0)).offset(BOSS_EXTRUDE4_START)):
        Polygon((-25.1, 22.65), (-25.1, 20.1), (-25.1, 6.78), (-20.1, 6.78), (-20.1, 20.1), (-22.55, 20.1), align=None)
        Polygon((-25.1, 25.1), (-25.1, 22.65), (-22.55, 20.1), (-20.1, 20.1), (0, 20.1), (2.45, 20.1), (3.569908379, 21.219908379), (3.569908379, 25.1), align=None)
        Polygon((0, 20.1), (0, 6.78), (3.569908379, 6.78), (3.569908379, 20.1), (3.569908379, 21.219908379), (2.45, 20.1), align=None)
        Polygon((-20.1, 6.78), (-25.1, 6.78), (-25.1, -5), (3.569908379, -5), (3.569908379, 6.78), (0, 6.78), (0, 0), (-20.1, 0), align=None)
    extrude(amount=BOSS_EXTRUDE4_DEPTH)

    # Chamfer1
    chamfer1_edges = [part.edges().sort_by_distance(p)[0] for p in [
        (-25.1, 190, -14.715),
        (3.569908379, 190, -13.999954189),
    ]]
    chamfer(chamfer1_edges, length=CHAMFER1_SIZE - 0.0001)  # a hair under: the kernel refuses the full size

    # Chamfer2
    chamfer2_edges = [part.edges().sort_by_distance(p)[0] for p in [
        (3.569908379, 189.99995, -6.78),
        (-25.1, 189.99995, -6.78),
    ]]
    chamfer(chamfer2_edges, length=CHAMFER2_SIZE)

    # Sketch3 → Cut-Extrude1 (cut)
    with BuildSketch(Plane(origin=(0, 0, -25.1), x_dir=(-1, 0, 0), z_dir=(0, 0, -1))):
        with Locations((10.765045811, 185)):
            Circle(SKETCH3_R)
    extrude(amount=-CUT_EXTRUDE1_DEPTH, mode=Mode.SUBTRACT)

    # Sketch2<5> → Boss-Extrude5 (add)
    # profile 1 of 2: a face of its own
    with BuildSketch(Plane(origin=(0, 0, 0), x_dir=(1, 0, 0), z_dir=(0, 1, 0)).offset(BOSS_EXTRUDE5_START)):
        with Locations((16.38495419, 13.44)):
            Rectangle(SKETCH2_5_W, SKETCH2_5_H)
        with Locations(Location((24.2, 11.78, 0), (0, 0, 270))):
            Circle(SKETCH2_5_R, mode=Mode.SUBTRACT)
    # profile 2 of 2: a face of its own
    with BuildSketch(Plane(origin=(0, 0, 0), x_dir=(1, 0, 0), z_dir=(0, 1, 0)).offset(BOSS_EXTRUDE5_START)):
        Polygon((-25.1, 20.1), (-49.3, 20.1), (-49.3, 6.78), (-40, 6.78), (-25.1, 6.78), align=None)
        with Locations(Location((-44.3, 11.78, 0), (0, 0, 270))):
            Circle(SKETCH2_5_R, mode=Mode.SUBTRACT)
    extrude(amount=BOSS_EXTRUDE5_DEPTH)

    # Chamfer3
    chamfer3_edges = [part.edges().sort_by_distance(p)[0] for p in [
        (16.384954189, 180, -20.1),
        (8.569908379, 180, -6.78),
        (-30.1, 180, -6.78),
        (-37.2, 180, -20.1),
    ]]
    chamfer(chamfer3_edges, length=CHAMFER3_SIZE)


solid = part.part
